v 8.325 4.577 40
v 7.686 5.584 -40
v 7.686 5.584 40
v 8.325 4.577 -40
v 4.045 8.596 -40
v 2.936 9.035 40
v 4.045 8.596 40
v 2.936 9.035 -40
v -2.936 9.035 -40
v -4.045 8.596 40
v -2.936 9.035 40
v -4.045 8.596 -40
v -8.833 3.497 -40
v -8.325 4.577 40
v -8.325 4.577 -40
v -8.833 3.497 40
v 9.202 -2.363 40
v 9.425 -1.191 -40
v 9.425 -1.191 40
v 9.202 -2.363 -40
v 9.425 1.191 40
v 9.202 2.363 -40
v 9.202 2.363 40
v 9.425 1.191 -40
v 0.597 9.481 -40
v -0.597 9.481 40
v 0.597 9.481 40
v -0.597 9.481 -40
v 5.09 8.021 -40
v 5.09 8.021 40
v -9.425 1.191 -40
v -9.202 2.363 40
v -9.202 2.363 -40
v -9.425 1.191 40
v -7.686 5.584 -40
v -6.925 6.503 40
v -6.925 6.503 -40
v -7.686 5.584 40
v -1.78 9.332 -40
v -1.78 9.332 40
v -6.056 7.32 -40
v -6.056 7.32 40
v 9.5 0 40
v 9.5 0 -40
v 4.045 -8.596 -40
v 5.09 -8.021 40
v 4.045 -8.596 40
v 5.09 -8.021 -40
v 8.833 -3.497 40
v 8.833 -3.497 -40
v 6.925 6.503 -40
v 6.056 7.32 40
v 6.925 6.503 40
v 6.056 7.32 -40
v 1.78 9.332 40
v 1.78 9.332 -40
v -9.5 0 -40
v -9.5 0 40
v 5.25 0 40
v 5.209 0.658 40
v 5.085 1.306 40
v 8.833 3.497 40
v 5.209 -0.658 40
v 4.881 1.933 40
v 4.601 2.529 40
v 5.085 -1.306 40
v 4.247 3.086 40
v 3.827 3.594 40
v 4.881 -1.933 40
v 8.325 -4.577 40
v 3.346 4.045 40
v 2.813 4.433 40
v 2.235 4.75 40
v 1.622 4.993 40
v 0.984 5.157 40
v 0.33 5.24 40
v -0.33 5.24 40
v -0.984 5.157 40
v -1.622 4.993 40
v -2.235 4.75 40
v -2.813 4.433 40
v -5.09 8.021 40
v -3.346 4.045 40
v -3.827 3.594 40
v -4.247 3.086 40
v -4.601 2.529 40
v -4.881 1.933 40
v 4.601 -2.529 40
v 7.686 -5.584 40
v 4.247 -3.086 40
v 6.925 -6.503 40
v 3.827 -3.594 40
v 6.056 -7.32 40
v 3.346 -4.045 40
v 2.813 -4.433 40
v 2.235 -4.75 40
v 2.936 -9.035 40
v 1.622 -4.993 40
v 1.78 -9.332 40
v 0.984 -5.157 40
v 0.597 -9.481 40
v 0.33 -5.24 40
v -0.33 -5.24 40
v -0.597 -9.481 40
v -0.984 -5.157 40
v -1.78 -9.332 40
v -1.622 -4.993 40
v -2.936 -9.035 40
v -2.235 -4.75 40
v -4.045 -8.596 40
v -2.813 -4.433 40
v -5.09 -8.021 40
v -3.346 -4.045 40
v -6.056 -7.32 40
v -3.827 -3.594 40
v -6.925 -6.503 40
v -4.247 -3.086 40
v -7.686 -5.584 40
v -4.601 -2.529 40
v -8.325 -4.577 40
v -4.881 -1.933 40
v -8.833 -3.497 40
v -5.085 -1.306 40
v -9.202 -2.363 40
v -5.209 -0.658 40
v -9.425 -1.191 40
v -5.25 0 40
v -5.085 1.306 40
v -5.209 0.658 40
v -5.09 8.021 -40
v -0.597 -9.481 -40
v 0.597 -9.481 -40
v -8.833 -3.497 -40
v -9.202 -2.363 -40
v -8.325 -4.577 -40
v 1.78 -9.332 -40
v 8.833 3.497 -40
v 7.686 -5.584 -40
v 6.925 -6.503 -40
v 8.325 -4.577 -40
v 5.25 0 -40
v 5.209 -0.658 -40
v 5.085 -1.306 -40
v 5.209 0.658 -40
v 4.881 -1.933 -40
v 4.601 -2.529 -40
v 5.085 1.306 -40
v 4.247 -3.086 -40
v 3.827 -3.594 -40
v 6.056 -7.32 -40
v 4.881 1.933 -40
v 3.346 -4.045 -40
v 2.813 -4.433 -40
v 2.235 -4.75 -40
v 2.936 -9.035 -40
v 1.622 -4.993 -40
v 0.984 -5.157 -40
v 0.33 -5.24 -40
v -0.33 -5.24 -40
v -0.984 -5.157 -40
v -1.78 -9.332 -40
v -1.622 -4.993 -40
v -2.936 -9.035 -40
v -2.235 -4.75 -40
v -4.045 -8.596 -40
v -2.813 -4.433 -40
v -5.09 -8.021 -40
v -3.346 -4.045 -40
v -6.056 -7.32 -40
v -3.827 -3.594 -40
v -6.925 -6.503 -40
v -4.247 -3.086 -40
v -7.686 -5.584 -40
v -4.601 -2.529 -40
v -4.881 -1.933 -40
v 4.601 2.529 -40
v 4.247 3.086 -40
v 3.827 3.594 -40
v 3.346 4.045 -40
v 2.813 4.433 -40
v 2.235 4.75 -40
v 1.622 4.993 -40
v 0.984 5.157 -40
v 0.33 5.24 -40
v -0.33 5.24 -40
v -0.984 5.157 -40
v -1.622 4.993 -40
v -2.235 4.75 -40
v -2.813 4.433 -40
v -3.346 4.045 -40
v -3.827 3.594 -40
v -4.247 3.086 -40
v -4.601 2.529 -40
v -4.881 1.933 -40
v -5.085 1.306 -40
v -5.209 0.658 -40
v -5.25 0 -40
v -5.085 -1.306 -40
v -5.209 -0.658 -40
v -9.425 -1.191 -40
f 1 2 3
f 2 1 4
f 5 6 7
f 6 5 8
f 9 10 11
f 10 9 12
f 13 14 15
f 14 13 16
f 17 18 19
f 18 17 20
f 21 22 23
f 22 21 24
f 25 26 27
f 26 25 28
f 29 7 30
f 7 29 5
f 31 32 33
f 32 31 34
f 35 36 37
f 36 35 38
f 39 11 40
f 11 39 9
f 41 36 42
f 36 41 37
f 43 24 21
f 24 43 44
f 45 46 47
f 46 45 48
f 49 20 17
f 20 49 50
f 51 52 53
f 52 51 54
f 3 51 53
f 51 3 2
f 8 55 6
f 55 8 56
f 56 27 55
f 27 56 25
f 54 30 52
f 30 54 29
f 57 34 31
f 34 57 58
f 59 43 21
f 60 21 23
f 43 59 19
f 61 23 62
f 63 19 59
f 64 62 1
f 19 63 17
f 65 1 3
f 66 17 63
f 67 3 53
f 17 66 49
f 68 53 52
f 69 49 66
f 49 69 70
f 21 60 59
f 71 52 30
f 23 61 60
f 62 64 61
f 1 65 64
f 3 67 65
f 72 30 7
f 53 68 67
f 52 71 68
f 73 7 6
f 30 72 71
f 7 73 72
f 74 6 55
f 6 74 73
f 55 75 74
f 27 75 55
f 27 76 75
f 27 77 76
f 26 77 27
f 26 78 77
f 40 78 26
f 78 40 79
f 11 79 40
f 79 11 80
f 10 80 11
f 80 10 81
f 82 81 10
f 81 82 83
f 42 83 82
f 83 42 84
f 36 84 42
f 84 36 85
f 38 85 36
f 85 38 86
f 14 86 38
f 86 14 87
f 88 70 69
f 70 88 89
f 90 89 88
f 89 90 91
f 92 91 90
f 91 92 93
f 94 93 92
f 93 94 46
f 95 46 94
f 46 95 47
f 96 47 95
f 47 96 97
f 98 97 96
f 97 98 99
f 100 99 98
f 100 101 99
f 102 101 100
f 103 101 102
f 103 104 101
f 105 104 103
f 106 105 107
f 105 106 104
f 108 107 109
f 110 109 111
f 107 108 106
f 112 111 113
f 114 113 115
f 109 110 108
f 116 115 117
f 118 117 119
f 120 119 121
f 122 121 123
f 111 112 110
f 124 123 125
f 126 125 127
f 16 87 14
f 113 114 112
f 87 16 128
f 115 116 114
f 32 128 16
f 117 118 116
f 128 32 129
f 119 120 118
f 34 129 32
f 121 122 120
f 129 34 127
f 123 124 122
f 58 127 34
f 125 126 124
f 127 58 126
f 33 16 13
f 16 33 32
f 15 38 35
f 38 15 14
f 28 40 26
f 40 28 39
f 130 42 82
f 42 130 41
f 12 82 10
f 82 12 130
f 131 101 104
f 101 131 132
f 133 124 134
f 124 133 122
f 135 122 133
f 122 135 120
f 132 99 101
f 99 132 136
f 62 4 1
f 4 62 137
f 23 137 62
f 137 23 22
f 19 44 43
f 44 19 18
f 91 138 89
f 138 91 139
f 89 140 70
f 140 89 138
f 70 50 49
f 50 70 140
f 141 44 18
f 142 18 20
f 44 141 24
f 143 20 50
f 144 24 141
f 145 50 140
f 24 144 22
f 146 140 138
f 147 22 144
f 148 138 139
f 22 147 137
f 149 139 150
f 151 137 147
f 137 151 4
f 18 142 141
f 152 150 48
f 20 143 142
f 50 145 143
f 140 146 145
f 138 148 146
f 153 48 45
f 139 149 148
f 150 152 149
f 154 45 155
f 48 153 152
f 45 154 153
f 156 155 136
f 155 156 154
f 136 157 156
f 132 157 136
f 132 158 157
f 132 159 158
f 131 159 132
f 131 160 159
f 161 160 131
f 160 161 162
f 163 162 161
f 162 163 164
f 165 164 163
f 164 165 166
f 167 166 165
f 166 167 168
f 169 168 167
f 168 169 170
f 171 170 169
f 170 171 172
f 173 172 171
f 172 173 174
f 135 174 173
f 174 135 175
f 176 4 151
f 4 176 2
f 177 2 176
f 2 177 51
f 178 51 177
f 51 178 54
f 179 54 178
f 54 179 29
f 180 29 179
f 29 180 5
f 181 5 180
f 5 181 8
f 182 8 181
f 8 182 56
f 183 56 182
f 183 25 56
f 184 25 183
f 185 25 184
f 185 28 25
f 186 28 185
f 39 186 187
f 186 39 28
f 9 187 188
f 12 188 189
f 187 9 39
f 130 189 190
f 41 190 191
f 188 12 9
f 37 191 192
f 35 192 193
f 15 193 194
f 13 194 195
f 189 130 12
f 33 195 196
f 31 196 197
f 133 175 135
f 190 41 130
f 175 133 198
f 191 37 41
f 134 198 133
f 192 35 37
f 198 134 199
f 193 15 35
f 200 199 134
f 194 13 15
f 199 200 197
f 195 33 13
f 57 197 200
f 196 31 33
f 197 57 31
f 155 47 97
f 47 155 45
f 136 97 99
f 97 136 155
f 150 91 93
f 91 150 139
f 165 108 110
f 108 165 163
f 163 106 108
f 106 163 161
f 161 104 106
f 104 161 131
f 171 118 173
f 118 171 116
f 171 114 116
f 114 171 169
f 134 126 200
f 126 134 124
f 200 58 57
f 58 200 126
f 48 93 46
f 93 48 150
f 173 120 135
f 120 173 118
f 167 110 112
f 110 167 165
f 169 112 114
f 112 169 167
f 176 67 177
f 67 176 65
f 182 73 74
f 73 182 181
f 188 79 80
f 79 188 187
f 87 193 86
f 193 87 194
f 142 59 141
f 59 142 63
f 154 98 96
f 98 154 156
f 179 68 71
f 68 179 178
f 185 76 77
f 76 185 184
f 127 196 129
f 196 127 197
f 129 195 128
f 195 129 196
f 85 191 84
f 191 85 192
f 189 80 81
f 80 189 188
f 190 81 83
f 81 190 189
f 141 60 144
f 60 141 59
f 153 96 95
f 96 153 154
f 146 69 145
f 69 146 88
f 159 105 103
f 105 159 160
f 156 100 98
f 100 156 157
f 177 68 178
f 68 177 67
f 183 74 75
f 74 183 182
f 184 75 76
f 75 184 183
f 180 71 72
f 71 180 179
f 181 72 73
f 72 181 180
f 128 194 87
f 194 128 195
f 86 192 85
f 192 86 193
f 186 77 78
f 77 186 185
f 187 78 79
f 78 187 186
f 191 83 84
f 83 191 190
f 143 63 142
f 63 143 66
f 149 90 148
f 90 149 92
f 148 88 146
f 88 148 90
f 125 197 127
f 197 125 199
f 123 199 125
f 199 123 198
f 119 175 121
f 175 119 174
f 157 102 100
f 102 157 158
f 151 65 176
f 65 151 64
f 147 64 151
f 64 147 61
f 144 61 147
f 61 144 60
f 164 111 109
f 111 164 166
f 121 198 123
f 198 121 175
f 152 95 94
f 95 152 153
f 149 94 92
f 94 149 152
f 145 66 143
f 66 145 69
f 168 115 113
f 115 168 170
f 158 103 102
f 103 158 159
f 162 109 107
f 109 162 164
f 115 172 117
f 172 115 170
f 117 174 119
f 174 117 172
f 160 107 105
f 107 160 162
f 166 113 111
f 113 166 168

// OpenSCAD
$fn = 50;


difference() {
	union() {
		translate(v = [0, 0, -40.0000000000]) {
			cylinder(h = 80, r = 9.5000000000);
		}
	}
	union() {
		translate(v = [0, 0, -100.0000000000]) {
			cylinder(h = 200, r = 5.2500000000);
		}
	}
}
